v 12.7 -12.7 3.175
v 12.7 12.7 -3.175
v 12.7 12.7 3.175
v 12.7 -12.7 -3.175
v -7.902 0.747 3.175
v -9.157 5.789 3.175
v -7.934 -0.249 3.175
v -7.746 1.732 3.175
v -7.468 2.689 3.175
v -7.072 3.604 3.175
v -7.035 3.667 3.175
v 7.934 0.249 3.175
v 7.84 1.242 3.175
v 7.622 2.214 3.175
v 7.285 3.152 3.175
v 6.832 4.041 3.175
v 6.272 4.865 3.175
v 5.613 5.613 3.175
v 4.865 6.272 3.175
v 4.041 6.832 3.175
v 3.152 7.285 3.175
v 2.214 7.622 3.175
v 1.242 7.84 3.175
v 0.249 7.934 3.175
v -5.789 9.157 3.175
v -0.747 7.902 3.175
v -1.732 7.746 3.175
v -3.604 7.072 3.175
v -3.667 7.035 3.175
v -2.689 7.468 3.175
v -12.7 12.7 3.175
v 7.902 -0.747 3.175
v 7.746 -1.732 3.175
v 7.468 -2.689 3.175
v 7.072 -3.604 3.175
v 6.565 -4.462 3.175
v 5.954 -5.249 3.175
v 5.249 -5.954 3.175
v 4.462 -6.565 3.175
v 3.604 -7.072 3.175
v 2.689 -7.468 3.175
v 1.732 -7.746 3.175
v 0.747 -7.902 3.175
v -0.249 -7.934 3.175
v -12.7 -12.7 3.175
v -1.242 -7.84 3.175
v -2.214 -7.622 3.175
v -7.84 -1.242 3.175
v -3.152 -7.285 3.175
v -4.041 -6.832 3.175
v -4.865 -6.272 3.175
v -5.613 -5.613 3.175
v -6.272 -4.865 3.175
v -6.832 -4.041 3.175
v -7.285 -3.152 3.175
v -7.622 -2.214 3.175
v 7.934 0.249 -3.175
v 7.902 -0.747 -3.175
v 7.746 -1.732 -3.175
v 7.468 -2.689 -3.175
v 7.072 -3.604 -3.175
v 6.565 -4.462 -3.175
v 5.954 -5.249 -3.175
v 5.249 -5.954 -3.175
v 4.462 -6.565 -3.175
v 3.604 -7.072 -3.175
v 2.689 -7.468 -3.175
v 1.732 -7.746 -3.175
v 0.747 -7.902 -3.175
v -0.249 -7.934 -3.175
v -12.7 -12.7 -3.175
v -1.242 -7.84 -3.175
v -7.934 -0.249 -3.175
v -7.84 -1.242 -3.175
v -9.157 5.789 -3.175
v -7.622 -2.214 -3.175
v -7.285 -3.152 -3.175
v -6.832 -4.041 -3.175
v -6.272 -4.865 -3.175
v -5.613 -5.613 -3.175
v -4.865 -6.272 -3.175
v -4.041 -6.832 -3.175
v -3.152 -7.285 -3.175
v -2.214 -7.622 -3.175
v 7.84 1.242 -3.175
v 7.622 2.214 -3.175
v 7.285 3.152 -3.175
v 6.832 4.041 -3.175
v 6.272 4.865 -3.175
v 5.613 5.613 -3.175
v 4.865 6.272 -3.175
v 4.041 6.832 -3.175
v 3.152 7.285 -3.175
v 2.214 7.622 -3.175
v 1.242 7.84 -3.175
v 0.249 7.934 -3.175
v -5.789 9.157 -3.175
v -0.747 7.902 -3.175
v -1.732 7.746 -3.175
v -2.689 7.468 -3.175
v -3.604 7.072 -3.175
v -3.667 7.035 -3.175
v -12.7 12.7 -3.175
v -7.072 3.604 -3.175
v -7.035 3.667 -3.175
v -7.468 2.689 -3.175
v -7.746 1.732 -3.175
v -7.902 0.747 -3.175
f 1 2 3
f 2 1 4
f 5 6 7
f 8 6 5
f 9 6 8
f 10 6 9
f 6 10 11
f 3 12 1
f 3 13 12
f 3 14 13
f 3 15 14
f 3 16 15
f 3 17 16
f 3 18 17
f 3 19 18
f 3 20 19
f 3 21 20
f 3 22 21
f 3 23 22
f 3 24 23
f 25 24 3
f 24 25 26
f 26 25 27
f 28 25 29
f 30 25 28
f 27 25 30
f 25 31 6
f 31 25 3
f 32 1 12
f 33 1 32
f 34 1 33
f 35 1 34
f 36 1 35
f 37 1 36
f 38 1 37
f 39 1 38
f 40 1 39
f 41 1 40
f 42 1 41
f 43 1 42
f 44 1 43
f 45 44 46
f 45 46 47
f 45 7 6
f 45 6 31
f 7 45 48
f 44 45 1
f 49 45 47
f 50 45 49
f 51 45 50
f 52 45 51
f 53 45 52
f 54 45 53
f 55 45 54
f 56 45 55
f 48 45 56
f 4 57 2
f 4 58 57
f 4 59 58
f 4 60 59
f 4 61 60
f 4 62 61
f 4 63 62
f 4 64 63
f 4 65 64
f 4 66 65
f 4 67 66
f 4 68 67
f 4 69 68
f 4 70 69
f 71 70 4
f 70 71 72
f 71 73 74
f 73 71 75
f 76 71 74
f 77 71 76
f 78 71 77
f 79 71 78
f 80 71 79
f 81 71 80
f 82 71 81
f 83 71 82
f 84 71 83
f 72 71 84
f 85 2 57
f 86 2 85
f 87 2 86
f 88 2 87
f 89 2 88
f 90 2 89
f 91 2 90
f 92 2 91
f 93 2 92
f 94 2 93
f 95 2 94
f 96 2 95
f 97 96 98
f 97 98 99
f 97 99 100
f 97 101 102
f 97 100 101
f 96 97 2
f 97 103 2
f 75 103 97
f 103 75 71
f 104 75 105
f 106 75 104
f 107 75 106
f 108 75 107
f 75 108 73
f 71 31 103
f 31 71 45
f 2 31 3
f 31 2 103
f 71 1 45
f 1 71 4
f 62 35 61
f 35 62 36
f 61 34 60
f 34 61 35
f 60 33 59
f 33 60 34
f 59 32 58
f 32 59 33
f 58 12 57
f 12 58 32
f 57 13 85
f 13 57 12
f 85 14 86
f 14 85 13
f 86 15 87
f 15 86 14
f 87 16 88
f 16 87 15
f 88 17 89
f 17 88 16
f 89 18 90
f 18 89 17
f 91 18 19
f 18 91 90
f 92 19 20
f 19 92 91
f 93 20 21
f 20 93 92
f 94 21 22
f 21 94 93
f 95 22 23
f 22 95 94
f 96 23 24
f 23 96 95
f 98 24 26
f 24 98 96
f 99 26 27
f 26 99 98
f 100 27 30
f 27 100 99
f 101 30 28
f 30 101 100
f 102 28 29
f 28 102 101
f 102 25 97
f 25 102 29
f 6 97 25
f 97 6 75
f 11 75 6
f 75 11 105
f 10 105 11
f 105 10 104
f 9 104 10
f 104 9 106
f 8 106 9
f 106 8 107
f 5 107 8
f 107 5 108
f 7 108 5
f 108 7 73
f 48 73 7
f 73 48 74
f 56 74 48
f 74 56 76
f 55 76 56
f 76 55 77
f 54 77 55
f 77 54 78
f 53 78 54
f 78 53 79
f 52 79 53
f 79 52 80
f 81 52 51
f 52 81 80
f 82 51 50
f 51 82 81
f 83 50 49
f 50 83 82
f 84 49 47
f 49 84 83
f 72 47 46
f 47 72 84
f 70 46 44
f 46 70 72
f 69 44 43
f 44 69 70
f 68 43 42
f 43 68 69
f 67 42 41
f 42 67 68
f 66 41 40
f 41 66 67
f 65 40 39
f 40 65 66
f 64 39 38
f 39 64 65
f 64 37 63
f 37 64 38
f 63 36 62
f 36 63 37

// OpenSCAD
/*
  author: Christopher O'Brien  <obriencj@gmail.com>
  license: GPL v3

  Some modules for cutting a bore through objects, with optional
  standard english key profiles.
*/



/*
  [[min diameter in inches, key width in inches], ...]
*/
function _eng_std_keysizes() =
     [[-1/0, 0],
      [5/16, 3/32],
      [1/2, 1/8],
      [5/8, 3/16],
      [15/16, 1/4],
      [21/16, 5/16],
      [23/16, 3/8],
      [29/16, 1/2],
      [37/16, 5/8],
      [45/16, 3/4],
      [53/16, 7/8],
      [61/16, 1],
      [1/0, undef]]; // Inf sentinal value


function _minmax_key_recur(val, index, table) =
     let(curr = table[index],
	 next = table[index + 1])
     ((curr[0] <= val) && (val < next[0]))? curr[1]:
     _minmax_key_recur(val, index + 1, table);


function eng_std_keysize(bore_d_inches) =
     bore_d_inches?
     _minmax_key_recur(bore_d_inches, 0, _eng_std_keysizes()):
     0;


function inch_to_mm(x) = x * 25.4;
function vec_inch_to_mm(v) = [for(x=v) inch_to_mm(x)];


module _2d_cutout(thick, position, overshoot=0.05) {

     // overshoot is used to prevent weird z-clipping artifacts, it
     // ensures that the subtracted shape is slightly thicker than the
     // solid body and passes both faces fully. If the cutout is not
     // meant to go all the way through, set overshoot to 0 and
     // overstate the thickness by some amount.

     oz = thick + (overshoot * 2);
     op = [position.x, position.y, position.z - overshoot];

     difference() {
	  children(0);
	  translate(op) {
	       linear_extrude(oz) {
		    children(1);
	       };
	  };
     };
}


module _bore(r, k, keygap=0.25) {
     // The the square key dimension k describes the height and width
     // of the key itself. While the width should match for the bore,
     // the height should have some "wiggle room." That value is the
     // keygap parameter.

     //echo("bore: r=", r, "k=", k);

     circle(r, $fa=1, $fs=1);
     if(k) {
	  translate([0, r + keygap]) {
	       square([k, k], true);
	  };
     };
}


module with_bore(bore_r, key, thick,
		 position=[0, 0, 0], angle=0,
		 overshoot=0.05) {

     _2d_cutout(thick, position, overshoot) {
	  union() {
	       children();
	  };
	  rotate([0, 0, angle]) {
	       _bore(bore_r, key);
	  };
     };
}


module with_eng_std_bore(bore_d_inches, depth_inches, keyed=false,
			 position=[0, 0, 0], angle=0,
			 overshoot=0.05) {

     r = inch_to_mm(bore_d_inches) / 2;
     k = inch_to_mm(keyed? eng_std_keysize(bore_d_inches): 0);
     z = inch_to_mm(depth_inches);
     with_bore(r, k, z, position, angle, overshoot) {
	  children();
     };
}


module with_1_2_inch_bore(depth_inches, keyed=false,
			  position=[0, 0, 0], angle=0,
			  overshoot=0.05) {

     with_eng_std_bore(1/2, depth_inches, keyed,
		       position, angle, overshoot) {
	  children();
     };
}


module with_5_8_inch_bore(depth_inches, keyed=false,
			  position=[0, 0, 0], angle=0,
			  overshoot=0.05) {

     with_eng_std_bore(5/8, depth_inches, keyed,
		       position, angle, overshoot) {
	  children();
     };
}


module eng_cube(eng_dimensions, center=false) {
     cube(vec_inch_to_mm(eng_dimensions), center=center);
}


module 5_8_inch_square_spacer(thick_inches, keyed=true) {

     // since the eng_cube will be centered, we need to shift the
     // starting position of the bore downwards by half that amount.
     pos = vec_inch_to_mm([0, 0, -thick_inches / 2]);

     with_5_8_inch_bore(thick_inches, keyed=keyed, position=pos, angle=45) {
	  eng_cube([1, 1, thick_inches], true);
     };
}


/* a 1" x 1" x 1/4" spacer with a 5/8" keyed bore */
5_8_inch_square_spacer(1/4);


// The end.
